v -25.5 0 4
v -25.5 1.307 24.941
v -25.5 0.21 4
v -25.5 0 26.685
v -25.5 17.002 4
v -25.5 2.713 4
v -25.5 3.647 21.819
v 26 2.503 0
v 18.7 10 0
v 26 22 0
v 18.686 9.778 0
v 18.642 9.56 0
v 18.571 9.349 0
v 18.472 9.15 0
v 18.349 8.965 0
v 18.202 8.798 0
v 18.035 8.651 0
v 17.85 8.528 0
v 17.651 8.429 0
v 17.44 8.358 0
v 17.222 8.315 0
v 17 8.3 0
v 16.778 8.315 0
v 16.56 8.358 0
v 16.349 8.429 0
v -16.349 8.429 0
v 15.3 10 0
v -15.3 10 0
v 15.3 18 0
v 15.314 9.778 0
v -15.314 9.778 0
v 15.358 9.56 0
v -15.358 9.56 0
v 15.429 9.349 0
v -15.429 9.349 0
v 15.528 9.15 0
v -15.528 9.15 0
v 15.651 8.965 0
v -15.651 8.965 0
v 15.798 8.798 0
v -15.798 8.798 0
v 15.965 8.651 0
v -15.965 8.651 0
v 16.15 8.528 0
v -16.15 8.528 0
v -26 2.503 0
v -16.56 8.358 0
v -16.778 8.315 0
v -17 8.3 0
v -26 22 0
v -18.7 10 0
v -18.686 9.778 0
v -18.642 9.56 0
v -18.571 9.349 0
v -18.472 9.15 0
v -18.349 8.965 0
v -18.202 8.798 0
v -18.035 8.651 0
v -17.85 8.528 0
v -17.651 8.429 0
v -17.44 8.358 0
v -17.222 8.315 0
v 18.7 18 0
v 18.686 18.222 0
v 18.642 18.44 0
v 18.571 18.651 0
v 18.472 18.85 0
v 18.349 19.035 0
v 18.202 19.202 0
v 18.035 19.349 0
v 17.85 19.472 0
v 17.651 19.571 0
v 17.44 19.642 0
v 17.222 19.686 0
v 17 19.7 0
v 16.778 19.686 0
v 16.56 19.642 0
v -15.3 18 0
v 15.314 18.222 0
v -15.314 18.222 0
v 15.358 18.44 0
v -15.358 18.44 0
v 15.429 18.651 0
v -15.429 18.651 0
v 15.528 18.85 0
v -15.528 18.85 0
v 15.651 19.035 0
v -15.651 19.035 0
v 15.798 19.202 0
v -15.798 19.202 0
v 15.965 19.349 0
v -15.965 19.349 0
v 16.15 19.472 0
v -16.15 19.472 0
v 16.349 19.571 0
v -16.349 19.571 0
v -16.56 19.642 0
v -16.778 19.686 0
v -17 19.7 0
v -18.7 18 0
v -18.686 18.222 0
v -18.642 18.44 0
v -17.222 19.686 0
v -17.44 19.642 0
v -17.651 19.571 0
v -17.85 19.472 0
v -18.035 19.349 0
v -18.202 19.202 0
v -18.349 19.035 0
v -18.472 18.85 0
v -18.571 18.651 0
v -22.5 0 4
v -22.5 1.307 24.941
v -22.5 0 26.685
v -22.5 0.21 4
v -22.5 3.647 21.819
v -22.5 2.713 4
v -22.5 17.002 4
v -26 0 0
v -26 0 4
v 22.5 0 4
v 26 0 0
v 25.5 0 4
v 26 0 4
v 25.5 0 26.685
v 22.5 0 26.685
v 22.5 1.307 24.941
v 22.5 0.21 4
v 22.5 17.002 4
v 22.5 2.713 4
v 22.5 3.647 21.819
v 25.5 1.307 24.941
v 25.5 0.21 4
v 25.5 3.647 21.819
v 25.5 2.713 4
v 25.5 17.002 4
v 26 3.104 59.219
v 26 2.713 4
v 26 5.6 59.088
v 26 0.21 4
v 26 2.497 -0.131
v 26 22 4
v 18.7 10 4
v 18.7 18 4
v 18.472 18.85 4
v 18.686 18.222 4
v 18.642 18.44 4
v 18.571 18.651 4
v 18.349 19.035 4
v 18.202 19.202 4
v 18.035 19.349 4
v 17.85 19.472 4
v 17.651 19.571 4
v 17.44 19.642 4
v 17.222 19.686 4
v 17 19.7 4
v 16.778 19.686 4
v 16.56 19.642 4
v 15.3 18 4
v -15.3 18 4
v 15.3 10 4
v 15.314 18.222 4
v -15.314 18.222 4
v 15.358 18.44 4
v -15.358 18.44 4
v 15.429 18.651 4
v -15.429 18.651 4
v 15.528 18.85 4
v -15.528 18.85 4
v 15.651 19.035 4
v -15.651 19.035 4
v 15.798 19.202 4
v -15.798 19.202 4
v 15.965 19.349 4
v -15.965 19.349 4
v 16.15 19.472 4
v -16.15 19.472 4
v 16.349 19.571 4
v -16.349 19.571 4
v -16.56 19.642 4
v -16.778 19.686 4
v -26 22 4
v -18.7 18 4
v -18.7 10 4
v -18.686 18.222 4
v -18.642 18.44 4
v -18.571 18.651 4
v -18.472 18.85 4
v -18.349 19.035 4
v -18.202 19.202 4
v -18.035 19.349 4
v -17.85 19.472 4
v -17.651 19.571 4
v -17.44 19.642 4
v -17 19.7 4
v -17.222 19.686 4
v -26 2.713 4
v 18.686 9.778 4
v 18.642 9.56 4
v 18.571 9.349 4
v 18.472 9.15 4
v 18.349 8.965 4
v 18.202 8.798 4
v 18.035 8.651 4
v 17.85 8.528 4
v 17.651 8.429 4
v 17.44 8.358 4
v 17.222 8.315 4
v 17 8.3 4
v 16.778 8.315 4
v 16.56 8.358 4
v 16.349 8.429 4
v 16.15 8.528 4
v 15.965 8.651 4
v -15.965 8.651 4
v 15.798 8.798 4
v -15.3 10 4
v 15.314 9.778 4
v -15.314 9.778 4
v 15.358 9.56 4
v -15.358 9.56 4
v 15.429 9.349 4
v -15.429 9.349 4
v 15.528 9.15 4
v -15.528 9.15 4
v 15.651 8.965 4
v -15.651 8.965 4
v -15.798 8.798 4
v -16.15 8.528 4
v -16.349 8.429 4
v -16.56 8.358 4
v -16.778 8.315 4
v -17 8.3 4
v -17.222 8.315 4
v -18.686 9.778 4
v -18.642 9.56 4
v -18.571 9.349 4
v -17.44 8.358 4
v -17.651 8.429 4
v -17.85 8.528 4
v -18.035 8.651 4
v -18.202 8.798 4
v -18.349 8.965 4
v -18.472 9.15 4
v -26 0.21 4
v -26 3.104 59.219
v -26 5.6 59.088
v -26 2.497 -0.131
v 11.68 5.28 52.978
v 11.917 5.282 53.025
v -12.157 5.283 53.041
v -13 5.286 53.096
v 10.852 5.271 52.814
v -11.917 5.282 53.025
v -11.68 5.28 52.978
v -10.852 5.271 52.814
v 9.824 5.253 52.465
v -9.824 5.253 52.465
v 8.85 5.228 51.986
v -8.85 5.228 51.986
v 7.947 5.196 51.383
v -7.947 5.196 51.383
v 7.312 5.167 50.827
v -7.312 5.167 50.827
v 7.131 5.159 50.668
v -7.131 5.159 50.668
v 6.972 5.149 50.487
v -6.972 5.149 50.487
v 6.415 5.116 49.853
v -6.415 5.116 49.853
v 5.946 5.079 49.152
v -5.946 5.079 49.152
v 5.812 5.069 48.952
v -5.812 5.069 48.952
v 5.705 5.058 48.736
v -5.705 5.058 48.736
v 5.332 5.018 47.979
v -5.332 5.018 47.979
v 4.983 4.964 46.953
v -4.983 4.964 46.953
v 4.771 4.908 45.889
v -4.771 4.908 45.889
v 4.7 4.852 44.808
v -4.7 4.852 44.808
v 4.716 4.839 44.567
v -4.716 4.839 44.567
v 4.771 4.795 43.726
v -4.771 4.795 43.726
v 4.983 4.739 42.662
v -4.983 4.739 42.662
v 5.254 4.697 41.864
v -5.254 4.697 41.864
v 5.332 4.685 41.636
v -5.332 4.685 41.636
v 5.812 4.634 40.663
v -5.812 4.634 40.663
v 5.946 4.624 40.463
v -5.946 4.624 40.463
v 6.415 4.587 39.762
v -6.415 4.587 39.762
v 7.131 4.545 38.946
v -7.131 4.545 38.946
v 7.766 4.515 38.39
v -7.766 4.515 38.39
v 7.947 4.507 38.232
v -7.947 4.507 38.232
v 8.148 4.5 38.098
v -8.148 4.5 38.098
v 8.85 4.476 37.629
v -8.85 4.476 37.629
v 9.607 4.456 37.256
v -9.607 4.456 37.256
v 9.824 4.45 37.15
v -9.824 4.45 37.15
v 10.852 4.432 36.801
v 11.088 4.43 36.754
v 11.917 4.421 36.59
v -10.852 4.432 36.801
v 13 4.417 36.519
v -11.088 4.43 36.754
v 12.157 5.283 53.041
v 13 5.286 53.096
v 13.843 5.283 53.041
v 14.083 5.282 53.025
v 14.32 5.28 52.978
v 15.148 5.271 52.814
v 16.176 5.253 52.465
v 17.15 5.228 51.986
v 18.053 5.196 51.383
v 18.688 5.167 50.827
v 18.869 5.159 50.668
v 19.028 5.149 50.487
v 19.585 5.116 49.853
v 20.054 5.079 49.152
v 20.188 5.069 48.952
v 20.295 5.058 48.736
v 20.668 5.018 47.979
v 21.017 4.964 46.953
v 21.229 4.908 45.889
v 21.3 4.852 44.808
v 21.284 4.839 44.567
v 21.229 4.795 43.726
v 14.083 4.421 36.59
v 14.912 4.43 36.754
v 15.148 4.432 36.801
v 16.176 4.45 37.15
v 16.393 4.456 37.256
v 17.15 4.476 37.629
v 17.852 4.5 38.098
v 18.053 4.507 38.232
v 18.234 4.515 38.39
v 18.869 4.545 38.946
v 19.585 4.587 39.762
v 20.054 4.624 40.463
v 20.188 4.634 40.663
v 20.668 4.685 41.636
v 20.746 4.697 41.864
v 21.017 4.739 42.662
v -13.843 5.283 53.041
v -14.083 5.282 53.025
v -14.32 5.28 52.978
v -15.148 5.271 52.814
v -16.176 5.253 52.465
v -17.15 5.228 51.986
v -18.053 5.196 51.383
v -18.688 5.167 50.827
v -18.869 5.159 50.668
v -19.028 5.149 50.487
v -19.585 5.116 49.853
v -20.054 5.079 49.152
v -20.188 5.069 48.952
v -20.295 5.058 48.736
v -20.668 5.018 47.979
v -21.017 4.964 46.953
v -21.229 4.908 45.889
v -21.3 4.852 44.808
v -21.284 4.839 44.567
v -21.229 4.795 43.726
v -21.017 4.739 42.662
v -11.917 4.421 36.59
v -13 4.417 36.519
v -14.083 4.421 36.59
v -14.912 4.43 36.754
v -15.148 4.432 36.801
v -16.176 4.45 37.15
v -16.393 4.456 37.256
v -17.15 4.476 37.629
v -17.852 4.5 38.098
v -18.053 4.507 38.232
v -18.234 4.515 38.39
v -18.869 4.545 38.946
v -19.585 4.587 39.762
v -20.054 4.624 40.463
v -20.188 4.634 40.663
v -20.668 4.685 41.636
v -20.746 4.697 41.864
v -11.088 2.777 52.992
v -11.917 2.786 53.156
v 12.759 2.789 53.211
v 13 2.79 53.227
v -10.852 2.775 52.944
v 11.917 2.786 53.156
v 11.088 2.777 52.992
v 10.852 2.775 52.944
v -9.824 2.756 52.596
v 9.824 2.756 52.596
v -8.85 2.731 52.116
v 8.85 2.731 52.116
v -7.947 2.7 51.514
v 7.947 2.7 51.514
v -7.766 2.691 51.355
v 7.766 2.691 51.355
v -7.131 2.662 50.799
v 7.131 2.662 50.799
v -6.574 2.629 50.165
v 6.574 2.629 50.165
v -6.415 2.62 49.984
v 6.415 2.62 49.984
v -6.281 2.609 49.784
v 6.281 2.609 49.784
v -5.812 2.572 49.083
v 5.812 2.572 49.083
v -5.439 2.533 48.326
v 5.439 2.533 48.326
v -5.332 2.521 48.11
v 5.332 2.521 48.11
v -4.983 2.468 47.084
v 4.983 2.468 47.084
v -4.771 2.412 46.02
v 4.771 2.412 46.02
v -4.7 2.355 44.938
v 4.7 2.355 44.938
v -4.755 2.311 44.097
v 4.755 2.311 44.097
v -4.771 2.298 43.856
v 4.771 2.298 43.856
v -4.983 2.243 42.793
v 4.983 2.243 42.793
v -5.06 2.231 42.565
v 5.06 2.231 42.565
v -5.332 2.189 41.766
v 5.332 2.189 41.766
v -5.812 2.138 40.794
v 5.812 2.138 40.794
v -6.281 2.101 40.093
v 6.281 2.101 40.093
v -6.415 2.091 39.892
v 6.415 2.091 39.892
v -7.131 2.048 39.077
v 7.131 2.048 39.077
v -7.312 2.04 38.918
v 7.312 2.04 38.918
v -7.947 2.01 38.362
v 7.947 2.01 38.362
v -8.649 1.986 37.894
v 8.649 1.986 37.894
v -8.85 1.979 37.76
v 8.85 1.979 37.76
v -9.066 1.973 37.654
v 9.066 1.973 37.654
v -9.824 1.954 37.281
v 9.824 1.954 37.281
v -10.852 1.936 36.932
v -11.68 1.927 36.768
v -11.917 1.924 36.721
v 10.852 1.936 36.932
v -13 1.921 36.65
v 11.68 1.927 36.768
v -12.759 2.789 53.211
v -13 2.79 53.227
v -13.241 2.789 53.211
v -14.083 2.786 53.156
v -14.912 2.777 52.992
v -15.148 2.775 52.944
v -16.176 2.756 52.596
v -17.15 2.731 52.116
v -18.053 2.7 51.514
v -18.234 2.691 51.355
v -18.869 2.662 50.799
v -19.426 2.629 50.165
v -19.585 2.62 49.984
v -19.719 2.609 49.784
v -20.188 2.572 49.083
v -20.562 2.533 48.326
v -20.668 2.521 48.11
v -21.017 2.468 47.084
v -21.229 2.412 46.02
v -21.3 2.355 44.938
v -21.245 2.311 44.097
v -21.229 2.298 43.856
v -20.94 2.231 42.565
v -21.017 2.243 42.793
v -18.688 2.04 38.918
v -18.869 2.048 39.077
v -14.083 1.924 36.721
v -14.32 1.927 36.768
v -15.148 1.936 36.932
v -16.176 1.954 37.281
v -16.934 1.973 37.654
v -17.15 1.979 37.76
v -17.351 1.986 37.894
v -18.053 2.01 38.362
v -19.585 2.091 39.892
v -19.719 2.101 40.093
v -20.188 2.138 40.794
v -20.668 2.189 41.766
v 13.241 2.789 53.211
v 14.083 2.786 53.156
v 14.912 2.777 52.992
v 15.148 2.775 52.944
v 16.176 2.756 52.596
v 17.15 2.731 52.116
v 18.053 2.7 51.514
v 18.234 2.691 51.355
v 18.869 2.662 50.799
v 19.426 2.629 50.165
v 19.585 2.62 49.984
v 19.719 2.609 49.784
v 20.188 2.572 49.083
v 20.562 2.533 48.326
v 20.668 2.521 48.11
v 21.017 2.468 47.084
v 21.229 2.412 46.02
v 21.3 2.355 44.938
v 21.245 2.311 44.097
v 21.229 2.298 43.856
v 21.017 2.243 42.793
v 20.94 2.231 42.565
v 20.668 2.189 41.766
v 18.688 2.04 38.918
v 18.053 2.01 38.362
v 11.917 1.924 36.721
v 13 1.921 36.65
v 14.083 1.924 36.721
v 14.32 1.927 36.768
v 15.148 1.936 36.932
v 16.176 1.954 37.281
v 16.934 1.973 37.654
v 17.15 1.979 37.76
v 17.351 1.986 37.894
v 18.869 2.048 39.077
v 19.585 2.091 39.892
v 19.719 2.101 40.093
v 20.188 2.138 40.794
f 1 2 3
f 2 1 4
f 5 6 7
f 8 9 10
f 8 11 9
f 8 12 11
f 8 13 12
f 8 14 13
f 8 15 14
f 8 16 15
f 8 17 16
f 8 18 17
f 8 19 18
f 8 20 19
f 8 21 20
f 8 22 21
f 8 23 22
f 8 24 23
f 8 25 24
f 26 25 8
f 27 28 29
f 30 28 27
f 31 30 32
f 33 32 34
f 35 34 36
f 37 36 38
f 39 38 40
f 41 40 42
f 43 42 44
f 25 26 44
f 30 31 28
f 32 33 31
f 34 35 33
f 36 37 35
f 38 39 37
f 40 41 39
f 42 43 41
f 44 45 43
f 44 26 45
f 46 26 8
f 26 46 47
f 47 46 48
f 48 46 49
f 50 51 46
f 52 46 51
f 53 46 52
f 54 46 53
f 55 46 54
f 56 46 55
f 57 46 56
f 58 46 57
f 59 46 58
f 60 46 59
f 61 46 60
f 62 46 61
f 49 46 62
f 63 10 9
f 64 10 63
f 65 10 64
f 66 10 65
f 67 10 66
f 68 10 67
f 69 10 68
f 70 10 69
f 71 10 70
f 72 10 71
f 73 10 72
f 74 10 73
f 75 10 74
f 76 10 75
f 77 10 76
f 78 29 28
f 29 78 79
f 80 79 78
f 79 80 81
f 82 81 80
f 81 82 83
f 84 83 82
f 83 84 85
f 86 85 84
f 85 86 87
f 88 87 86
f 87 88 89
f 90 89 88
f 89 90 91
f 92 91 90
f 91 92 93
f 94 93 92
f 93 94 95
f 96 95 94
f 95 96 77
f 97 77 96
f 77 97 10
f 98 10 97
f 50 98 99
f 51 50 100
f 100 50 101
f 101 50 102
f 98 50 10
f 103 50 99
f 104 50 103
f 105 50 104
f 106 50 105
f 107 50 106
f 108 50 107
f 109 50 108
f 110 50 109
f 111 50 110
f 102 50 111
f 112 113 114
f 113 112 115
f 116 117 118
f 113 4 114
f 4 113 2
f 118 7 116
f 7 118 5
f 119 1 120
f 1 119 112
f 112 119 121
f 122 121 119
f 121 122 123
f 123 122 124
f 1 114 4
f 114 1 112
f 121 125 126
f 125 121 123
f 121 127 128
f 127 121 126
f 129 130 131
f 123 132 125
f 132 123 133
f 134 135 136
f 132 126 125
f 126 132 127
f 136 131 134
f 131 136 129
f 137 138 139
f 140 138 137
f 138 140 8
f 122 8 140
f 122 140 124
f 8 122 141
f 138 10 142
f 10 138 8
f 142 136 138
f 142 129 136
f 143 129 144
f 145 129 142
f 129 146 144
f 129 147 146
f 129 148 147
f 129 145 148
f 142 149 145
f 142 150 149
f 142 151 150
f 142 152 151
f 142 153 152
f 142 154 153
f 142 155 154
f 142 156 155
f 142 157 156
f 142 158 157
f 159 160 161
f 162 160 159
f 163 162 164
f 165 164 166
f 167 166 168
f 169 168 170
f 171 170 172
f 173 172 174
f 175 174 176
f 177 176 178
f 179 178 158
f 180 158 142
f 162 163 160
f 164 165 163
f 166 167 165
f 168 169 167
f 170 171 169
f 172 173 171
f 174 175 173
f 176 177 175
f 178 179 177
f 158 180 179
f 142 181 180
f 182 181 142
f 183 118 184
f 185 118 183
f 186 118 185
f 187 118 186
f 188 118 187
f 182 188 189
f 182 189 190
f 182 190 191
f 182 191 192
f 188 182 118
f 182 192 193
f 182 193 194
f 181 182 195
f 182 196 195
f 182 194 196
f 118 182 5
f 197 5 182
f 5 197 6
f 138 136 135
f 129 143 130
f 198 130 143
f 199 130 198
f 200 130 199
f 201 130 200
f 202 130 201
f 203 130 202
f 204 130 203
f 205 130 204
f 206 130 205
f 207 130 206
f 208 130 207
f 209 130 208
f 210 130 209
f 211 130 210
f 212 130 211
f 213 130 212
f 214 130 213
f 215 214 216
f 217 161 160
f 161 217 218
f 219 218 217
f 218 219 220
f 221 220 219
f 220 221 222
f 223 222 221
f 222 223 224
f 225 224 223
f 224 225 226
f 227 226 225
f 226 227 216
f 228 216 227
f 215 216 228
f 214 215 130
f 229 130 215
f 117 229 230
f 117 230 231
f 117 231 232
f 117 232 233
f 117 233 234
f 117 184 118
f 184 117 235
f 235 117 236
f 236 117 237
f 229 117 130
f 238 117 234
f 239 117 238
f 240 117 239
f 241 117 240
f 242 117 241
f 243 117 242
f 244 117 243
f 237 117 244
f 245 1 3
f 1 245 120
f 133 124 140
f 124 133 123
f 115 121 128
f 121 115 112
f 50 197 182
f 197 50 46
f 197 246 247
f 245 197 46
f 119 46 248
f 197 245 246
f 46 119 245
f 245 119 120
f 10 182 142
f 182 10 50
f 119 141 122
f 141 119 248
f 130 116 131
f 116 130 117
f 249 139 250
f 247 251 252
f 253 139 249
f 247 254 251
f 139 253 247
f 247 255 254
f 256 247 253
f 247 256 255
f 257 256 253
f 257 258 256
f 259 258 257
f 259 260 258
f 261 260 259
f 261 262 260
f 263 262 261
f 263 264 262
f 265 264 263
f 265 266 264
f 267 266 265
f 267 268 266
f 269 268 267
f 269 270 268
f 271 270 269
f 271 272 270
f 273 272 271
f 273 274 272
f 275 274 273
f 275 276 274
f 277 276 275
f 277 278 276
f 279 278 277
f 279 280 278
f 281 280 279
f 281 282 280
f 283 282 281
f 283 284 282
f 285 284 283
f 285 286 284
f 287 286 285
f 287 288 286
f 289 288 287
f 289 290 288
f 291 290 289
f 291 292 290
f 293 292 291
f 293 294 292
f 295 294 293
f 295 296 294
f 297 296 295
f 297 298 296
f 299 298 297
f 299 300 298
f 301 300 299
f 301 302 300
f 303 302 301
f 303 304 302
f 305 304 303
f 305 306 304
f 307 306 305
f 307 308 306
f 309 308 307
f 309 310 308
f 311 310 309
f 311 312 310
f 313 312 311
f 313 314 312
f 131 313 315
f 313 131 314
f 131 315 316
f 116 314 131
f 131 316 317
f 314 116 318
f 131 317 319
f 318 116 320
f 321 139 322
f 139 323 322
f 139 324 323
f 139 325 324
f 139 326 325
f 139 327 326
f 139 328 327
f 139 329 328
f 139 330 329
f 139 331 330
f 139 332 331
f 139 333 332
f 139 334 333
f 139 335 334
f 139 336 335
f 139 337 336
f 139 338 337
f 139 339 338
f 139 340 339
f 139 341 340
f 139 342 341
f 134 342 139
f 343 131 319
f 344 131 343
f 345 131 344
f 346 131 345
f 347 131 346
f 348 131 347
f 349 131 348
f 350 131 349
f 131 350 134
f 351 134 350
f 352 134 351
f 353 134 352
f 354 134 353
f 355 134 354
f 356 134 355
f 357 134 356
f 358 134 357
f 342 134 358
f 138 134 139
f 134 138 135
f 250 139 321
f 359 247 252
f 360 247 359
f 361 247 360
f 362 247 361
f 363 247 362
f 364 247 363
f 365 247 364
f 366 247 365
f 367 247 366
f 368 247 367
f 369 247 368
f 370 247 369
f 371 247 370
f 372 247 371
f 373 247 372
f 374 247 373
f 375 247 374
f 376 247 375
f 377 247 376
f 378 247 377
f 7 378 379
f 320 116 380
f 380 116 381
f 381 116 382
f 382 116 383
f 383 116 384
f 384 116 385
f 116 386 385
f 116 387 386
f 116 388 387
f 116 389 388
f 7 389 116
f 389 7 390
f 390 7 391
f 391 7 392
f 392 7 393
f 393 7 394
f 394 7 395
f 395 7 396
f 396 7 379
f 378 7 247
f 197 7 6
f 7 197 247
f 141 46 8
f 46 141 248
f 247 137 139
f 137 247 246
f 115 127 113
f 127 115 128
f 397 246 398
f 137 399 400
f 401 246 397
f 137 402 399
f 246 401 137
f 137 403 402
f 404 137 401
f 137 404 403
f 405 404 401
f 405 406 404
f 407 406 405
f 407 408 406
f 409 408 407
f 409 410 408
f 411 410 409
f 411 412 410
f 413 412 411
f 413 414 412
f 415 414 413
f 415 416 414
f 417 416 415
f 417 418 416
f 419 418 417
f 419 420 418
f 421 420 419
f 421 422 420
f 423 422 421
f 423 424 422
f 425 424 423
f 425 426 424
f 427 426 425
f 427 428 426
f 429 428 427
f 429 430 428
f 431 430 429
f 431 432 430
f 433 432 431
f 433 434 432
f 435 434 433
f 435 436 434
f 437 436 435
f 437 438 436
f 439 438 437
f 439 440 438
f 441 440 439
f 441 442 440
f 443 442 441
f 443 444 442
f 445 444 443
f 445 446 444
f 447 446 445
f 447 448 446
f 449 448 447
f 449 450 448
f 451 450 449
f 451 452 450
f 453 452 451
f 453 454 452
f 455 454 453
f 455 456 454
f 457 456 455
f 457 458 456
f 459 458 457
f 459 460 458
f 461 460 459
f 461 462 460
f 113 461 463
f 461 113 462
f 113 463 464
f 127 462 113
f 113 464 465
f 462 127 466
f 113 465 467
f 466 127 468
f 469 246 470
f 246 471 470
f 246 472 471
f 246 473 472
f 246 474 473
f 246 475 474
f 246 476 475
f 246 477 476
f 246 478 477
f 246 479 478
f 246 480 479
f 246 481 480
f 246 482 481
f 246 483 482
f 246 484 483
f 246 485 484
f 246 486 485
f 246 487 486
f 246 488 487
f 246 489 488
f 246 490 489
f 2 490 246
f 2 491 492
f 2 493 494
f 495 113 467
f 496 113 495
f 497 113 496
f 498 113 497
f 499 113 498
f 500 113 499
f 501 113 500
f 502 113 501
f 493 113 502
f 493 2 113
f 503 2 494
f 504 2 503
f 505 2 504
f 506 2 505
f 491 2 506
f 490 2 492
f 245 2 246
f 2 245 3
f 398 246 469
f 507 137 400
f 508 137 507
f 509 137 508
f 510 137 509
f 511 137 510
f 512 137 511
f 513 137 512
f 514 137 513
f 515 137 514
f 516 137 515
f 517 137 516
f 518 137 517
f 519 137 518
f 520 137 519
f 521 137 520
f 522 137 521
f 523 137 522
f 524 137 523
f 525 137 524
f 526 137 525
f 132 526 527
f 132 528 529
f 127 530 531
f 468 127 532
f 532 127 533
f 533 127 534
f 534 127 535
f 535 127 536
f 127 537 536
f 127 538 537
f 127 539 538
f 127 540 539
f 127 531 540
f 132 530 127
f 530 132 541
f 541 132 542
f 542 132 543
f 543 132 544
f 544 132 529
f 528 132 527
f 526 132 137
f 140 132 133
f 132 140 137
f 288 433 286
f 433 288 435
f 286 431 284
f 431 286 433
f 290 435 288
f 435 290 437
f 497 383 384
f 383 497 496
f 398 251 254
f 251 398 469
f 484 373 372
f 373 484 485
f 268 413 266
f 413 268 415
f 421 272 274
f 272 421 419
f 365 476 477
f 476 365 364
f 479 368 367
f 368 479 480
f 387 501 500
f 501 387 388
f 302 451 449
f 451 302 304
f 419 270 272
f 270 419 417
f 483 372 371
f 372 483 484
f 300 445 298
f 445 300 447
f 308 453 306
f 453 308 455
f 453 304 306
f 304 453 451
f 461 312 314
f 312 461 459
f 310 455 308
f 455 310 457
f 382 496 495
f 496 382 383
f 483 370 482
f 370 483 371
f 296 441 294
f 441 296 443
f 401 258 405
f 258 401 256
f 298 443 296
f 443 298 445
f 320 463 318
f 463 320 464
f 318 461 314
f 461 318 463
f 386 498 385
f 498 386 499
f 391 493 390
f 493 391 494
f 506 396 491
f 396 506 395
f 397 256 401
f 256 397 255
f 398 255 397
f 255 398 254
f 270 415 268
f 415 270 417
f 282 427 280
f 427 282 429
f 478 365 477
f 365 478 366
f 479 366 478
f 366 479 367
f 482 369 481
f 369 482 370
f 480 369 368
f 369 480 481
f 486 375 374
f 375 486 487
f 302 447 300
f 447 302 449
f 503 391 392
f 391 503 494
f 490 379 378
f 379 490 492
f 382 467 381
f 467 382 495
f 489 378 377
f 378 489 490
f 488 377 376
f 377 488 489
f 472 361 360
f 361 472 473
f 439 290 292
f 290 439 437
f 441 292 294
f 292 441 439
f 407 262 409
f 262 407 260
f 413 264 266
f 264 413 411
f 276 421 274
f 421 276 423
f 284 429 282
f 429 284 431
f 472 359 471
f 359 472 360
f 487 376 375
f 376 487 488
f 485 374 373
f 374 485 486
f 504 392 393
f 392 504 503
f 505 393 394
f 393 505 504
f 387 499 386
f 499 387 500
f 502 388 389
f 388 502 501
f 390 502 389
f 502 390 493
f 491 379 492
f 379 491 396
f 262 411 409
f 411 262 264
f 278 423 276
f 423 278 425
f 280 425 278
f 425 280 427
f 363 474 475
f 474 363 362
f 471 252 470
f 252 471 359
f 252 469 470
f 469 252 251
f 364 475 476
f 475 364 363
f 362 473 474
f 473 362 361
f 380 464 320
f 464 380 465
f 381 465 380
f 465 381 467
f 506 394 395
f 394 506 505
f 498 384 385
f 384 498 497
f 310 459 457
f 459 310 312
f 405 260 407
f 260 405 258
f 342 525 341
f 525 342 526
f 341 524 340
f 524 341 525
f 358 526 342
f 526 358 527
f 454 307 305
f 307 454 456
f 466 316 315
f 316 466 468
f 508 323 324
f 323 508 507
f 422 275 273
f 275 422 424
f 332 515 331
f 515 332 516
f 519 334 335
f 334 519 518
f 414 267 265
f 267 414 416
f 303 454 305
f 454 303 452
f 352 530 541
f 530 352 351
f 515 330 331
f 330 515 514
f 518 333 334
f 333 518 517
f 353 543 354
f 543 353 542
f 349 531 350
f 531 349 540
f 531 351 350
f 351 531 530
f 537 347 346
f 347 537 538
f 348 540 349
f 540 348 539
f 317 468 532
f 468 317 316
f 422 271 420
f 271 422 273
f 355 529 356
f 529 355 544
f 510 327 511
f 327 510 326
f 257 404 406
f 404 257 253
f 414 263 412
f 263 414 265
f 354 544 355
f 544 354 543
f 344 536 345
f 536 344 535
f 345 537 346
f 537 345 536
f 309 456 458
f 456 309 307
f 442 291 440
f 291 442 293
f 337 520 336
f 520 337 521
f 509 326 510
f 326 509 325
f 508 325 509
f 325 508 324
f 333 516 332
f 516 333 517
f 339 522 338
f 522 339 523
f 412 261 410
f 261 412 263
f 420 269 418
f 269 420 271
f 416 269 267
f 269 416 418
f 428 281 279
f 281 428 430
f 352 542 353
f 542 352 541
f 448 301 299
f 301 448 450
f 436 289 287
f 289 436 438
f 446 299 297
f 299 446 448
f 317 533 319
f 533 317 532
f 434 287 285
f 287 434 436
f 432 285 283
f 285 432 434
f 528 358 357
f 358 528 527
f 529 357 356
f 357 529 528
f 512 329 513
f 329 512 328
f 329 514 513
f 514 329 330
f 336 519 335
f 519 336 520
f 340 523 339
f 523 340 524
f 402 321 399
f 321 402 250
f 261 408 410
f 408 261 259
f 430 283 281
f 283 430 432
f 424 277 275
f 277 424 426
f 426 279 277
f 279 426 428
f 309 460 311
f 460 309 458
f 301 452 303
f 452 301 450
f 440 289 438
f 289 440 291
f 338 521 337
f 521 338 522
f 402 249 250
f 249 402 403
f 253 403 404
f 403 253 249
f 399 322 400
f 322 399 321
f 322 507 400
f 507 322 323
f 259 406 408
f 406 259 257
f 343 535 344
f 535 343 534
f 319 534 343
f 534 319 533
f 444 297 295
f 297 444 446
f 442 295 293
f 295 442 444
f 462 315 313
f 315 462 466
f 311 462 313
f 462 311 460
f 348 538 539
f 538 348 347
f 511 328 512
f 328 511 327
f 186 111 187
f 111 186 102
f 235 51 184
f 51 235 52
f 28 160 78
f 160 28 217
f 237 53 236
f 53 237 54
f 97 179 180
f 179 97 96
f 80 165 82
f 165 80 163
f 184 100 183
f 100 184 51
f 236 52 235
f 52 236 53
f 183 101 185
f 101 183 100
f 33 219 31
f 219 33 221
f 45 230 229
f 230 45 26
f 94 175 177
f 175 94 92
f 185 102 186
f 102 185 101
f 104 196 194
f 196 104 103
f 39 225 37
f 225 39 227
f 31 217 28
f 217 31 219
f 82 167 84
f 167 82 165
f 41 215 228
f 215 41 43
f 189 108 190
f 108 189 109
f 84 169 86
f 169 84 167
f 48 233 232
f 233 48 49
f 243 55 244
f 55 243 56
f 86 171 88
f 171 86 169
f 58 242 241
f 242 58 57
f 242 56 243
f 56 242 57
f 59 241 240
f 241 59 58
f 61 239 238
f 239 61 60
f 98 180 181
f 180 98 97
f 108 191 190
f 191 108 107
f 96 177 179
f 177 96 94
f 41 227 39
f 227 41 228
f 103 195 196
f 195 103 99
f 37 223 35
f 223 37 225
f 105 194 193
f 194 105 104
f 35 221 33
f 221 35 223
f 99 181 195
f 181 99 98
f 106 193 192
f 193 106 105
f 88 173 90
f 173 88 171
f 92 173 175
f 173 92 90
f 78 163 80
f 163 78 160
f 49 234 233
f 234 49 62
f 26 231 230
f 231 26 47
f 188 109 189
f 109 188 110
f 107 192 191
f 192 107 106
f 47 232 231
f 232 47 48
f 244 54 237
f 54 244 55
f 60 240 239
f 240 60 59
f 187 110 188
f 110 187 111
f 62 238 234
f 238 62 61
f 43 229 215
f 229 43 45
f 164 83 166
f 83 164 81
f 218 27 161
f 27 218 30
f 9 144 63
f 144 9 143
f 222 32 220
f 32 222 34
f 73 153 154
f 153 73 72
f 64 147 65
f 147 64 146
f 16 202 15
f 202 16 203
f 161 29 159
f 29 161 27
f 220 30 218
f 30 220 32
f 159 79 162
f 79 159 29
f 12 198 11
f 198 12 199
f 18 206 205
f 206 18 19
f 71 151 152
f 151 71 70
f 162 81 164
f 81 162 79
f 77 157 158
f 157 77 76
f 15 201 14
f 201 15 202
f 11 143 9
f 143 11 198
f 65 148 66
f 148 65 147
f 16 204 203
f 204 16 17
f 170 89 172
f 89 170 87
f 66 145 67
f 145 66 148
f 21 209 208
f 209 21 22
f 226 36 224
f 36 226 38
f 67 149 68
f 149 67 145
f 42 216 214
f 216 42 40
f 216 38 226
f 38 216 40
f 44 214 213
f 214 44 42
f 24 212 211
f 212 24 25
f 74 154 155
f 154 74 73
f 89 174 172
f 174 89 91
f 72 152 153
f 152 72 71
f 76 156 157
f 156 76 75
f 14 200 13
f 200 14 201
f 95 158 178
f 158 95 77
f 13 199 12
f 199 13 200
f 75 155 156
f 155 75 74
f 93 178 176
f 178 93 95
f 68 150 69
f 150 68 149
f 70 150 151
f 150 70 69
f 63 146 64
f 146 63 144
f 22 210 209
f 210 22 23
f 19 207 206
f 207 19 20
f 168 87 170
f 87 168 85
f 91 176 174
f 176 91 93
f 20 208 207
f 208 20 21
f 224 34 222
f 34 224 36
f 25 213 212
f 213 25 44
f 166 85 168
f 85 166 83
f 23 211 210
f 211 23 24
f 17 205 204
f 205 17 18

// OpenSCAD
// =====================================================================
//  sonar_bracket.scad  -  front bracket for the HC-SR04
//
//  The two "eyes" push through the round holes from behind; a drop of
//  hot glue (or two small zip ties) holds the board. The foot has two
//  M3 slots to screw it onto the front bumper plate or the deck.
//
//  Check with calipers before printing: eye diameter (usually 16 mm)
//  and centre-to-centre spacing of the eyes (usually ~26 mm).
//  Print standing on the foot, no supports.
// =====================================================================

eye_d        = 16.6;  // hole for the transducers (16 mm + clearance)
eye_spacing  = 26;    // centre-to-centre                       <- CHECK
face_w       = 52;
face_t       = 2.5;
sensor_h     = 45;    // eye centre height above the foot, mm
                      // (higher = fewer false alarms from the ground)
tilt_up      = 3;     // degrees, aims slightly up to ignore the ground
foot_d       = 22;    // foot depth
foot_t       = 4;
slot_len     = 8;     // M3 slots, lets you adjust the position
slot_spacing = 34;

$fn = 48;
face_h = sensor_h + eye_d / 2 + 6;

difference() {
  union() {
    // foot
    translate([-face_w / 2, 0, 0]) cube([face_w, foot_d, foot_t]);
    // face (tilted back by tilt_up)
    rotate([-tilt_up, 0, 0]) translate([-face_w / 2, 0, 0]) cube([face_w, face_t, face_h]);
    // gussets
    for (sx = [-1, 1])
      translate([sx * (face_w / 2 - 2) - 1.5, 0, 0])
        rotate([90, 0, 90]) linear_extrude(3)
          polygon([[0, 0], [foot_d - 2, 0], [0, face_h * 0.45]]);
  }
  // eyes
  for (sx = [-1, 1])
    rotate([-tilt_up, 0, 0]) translate([sx * eye_spacing / 2, -1, sensor_h])
      rotate([-90, 0, 0]) cylinder(d = eye_d, h = face_t + 2);
  // M3 slots in the foot
  for (sx = [-1, 1])
    translate([sx * slot_spacing / 2, foot_d / 2 + 3, -1]) hull() {
      translate([0, -slot_len / 2, 0]) cylinder(d = 3.4, h = foot_t + 2);
      translate([0,  slot_len / 2, 0]) cylinder(d = 3.4, h = foot_t + 2);
    }
}
